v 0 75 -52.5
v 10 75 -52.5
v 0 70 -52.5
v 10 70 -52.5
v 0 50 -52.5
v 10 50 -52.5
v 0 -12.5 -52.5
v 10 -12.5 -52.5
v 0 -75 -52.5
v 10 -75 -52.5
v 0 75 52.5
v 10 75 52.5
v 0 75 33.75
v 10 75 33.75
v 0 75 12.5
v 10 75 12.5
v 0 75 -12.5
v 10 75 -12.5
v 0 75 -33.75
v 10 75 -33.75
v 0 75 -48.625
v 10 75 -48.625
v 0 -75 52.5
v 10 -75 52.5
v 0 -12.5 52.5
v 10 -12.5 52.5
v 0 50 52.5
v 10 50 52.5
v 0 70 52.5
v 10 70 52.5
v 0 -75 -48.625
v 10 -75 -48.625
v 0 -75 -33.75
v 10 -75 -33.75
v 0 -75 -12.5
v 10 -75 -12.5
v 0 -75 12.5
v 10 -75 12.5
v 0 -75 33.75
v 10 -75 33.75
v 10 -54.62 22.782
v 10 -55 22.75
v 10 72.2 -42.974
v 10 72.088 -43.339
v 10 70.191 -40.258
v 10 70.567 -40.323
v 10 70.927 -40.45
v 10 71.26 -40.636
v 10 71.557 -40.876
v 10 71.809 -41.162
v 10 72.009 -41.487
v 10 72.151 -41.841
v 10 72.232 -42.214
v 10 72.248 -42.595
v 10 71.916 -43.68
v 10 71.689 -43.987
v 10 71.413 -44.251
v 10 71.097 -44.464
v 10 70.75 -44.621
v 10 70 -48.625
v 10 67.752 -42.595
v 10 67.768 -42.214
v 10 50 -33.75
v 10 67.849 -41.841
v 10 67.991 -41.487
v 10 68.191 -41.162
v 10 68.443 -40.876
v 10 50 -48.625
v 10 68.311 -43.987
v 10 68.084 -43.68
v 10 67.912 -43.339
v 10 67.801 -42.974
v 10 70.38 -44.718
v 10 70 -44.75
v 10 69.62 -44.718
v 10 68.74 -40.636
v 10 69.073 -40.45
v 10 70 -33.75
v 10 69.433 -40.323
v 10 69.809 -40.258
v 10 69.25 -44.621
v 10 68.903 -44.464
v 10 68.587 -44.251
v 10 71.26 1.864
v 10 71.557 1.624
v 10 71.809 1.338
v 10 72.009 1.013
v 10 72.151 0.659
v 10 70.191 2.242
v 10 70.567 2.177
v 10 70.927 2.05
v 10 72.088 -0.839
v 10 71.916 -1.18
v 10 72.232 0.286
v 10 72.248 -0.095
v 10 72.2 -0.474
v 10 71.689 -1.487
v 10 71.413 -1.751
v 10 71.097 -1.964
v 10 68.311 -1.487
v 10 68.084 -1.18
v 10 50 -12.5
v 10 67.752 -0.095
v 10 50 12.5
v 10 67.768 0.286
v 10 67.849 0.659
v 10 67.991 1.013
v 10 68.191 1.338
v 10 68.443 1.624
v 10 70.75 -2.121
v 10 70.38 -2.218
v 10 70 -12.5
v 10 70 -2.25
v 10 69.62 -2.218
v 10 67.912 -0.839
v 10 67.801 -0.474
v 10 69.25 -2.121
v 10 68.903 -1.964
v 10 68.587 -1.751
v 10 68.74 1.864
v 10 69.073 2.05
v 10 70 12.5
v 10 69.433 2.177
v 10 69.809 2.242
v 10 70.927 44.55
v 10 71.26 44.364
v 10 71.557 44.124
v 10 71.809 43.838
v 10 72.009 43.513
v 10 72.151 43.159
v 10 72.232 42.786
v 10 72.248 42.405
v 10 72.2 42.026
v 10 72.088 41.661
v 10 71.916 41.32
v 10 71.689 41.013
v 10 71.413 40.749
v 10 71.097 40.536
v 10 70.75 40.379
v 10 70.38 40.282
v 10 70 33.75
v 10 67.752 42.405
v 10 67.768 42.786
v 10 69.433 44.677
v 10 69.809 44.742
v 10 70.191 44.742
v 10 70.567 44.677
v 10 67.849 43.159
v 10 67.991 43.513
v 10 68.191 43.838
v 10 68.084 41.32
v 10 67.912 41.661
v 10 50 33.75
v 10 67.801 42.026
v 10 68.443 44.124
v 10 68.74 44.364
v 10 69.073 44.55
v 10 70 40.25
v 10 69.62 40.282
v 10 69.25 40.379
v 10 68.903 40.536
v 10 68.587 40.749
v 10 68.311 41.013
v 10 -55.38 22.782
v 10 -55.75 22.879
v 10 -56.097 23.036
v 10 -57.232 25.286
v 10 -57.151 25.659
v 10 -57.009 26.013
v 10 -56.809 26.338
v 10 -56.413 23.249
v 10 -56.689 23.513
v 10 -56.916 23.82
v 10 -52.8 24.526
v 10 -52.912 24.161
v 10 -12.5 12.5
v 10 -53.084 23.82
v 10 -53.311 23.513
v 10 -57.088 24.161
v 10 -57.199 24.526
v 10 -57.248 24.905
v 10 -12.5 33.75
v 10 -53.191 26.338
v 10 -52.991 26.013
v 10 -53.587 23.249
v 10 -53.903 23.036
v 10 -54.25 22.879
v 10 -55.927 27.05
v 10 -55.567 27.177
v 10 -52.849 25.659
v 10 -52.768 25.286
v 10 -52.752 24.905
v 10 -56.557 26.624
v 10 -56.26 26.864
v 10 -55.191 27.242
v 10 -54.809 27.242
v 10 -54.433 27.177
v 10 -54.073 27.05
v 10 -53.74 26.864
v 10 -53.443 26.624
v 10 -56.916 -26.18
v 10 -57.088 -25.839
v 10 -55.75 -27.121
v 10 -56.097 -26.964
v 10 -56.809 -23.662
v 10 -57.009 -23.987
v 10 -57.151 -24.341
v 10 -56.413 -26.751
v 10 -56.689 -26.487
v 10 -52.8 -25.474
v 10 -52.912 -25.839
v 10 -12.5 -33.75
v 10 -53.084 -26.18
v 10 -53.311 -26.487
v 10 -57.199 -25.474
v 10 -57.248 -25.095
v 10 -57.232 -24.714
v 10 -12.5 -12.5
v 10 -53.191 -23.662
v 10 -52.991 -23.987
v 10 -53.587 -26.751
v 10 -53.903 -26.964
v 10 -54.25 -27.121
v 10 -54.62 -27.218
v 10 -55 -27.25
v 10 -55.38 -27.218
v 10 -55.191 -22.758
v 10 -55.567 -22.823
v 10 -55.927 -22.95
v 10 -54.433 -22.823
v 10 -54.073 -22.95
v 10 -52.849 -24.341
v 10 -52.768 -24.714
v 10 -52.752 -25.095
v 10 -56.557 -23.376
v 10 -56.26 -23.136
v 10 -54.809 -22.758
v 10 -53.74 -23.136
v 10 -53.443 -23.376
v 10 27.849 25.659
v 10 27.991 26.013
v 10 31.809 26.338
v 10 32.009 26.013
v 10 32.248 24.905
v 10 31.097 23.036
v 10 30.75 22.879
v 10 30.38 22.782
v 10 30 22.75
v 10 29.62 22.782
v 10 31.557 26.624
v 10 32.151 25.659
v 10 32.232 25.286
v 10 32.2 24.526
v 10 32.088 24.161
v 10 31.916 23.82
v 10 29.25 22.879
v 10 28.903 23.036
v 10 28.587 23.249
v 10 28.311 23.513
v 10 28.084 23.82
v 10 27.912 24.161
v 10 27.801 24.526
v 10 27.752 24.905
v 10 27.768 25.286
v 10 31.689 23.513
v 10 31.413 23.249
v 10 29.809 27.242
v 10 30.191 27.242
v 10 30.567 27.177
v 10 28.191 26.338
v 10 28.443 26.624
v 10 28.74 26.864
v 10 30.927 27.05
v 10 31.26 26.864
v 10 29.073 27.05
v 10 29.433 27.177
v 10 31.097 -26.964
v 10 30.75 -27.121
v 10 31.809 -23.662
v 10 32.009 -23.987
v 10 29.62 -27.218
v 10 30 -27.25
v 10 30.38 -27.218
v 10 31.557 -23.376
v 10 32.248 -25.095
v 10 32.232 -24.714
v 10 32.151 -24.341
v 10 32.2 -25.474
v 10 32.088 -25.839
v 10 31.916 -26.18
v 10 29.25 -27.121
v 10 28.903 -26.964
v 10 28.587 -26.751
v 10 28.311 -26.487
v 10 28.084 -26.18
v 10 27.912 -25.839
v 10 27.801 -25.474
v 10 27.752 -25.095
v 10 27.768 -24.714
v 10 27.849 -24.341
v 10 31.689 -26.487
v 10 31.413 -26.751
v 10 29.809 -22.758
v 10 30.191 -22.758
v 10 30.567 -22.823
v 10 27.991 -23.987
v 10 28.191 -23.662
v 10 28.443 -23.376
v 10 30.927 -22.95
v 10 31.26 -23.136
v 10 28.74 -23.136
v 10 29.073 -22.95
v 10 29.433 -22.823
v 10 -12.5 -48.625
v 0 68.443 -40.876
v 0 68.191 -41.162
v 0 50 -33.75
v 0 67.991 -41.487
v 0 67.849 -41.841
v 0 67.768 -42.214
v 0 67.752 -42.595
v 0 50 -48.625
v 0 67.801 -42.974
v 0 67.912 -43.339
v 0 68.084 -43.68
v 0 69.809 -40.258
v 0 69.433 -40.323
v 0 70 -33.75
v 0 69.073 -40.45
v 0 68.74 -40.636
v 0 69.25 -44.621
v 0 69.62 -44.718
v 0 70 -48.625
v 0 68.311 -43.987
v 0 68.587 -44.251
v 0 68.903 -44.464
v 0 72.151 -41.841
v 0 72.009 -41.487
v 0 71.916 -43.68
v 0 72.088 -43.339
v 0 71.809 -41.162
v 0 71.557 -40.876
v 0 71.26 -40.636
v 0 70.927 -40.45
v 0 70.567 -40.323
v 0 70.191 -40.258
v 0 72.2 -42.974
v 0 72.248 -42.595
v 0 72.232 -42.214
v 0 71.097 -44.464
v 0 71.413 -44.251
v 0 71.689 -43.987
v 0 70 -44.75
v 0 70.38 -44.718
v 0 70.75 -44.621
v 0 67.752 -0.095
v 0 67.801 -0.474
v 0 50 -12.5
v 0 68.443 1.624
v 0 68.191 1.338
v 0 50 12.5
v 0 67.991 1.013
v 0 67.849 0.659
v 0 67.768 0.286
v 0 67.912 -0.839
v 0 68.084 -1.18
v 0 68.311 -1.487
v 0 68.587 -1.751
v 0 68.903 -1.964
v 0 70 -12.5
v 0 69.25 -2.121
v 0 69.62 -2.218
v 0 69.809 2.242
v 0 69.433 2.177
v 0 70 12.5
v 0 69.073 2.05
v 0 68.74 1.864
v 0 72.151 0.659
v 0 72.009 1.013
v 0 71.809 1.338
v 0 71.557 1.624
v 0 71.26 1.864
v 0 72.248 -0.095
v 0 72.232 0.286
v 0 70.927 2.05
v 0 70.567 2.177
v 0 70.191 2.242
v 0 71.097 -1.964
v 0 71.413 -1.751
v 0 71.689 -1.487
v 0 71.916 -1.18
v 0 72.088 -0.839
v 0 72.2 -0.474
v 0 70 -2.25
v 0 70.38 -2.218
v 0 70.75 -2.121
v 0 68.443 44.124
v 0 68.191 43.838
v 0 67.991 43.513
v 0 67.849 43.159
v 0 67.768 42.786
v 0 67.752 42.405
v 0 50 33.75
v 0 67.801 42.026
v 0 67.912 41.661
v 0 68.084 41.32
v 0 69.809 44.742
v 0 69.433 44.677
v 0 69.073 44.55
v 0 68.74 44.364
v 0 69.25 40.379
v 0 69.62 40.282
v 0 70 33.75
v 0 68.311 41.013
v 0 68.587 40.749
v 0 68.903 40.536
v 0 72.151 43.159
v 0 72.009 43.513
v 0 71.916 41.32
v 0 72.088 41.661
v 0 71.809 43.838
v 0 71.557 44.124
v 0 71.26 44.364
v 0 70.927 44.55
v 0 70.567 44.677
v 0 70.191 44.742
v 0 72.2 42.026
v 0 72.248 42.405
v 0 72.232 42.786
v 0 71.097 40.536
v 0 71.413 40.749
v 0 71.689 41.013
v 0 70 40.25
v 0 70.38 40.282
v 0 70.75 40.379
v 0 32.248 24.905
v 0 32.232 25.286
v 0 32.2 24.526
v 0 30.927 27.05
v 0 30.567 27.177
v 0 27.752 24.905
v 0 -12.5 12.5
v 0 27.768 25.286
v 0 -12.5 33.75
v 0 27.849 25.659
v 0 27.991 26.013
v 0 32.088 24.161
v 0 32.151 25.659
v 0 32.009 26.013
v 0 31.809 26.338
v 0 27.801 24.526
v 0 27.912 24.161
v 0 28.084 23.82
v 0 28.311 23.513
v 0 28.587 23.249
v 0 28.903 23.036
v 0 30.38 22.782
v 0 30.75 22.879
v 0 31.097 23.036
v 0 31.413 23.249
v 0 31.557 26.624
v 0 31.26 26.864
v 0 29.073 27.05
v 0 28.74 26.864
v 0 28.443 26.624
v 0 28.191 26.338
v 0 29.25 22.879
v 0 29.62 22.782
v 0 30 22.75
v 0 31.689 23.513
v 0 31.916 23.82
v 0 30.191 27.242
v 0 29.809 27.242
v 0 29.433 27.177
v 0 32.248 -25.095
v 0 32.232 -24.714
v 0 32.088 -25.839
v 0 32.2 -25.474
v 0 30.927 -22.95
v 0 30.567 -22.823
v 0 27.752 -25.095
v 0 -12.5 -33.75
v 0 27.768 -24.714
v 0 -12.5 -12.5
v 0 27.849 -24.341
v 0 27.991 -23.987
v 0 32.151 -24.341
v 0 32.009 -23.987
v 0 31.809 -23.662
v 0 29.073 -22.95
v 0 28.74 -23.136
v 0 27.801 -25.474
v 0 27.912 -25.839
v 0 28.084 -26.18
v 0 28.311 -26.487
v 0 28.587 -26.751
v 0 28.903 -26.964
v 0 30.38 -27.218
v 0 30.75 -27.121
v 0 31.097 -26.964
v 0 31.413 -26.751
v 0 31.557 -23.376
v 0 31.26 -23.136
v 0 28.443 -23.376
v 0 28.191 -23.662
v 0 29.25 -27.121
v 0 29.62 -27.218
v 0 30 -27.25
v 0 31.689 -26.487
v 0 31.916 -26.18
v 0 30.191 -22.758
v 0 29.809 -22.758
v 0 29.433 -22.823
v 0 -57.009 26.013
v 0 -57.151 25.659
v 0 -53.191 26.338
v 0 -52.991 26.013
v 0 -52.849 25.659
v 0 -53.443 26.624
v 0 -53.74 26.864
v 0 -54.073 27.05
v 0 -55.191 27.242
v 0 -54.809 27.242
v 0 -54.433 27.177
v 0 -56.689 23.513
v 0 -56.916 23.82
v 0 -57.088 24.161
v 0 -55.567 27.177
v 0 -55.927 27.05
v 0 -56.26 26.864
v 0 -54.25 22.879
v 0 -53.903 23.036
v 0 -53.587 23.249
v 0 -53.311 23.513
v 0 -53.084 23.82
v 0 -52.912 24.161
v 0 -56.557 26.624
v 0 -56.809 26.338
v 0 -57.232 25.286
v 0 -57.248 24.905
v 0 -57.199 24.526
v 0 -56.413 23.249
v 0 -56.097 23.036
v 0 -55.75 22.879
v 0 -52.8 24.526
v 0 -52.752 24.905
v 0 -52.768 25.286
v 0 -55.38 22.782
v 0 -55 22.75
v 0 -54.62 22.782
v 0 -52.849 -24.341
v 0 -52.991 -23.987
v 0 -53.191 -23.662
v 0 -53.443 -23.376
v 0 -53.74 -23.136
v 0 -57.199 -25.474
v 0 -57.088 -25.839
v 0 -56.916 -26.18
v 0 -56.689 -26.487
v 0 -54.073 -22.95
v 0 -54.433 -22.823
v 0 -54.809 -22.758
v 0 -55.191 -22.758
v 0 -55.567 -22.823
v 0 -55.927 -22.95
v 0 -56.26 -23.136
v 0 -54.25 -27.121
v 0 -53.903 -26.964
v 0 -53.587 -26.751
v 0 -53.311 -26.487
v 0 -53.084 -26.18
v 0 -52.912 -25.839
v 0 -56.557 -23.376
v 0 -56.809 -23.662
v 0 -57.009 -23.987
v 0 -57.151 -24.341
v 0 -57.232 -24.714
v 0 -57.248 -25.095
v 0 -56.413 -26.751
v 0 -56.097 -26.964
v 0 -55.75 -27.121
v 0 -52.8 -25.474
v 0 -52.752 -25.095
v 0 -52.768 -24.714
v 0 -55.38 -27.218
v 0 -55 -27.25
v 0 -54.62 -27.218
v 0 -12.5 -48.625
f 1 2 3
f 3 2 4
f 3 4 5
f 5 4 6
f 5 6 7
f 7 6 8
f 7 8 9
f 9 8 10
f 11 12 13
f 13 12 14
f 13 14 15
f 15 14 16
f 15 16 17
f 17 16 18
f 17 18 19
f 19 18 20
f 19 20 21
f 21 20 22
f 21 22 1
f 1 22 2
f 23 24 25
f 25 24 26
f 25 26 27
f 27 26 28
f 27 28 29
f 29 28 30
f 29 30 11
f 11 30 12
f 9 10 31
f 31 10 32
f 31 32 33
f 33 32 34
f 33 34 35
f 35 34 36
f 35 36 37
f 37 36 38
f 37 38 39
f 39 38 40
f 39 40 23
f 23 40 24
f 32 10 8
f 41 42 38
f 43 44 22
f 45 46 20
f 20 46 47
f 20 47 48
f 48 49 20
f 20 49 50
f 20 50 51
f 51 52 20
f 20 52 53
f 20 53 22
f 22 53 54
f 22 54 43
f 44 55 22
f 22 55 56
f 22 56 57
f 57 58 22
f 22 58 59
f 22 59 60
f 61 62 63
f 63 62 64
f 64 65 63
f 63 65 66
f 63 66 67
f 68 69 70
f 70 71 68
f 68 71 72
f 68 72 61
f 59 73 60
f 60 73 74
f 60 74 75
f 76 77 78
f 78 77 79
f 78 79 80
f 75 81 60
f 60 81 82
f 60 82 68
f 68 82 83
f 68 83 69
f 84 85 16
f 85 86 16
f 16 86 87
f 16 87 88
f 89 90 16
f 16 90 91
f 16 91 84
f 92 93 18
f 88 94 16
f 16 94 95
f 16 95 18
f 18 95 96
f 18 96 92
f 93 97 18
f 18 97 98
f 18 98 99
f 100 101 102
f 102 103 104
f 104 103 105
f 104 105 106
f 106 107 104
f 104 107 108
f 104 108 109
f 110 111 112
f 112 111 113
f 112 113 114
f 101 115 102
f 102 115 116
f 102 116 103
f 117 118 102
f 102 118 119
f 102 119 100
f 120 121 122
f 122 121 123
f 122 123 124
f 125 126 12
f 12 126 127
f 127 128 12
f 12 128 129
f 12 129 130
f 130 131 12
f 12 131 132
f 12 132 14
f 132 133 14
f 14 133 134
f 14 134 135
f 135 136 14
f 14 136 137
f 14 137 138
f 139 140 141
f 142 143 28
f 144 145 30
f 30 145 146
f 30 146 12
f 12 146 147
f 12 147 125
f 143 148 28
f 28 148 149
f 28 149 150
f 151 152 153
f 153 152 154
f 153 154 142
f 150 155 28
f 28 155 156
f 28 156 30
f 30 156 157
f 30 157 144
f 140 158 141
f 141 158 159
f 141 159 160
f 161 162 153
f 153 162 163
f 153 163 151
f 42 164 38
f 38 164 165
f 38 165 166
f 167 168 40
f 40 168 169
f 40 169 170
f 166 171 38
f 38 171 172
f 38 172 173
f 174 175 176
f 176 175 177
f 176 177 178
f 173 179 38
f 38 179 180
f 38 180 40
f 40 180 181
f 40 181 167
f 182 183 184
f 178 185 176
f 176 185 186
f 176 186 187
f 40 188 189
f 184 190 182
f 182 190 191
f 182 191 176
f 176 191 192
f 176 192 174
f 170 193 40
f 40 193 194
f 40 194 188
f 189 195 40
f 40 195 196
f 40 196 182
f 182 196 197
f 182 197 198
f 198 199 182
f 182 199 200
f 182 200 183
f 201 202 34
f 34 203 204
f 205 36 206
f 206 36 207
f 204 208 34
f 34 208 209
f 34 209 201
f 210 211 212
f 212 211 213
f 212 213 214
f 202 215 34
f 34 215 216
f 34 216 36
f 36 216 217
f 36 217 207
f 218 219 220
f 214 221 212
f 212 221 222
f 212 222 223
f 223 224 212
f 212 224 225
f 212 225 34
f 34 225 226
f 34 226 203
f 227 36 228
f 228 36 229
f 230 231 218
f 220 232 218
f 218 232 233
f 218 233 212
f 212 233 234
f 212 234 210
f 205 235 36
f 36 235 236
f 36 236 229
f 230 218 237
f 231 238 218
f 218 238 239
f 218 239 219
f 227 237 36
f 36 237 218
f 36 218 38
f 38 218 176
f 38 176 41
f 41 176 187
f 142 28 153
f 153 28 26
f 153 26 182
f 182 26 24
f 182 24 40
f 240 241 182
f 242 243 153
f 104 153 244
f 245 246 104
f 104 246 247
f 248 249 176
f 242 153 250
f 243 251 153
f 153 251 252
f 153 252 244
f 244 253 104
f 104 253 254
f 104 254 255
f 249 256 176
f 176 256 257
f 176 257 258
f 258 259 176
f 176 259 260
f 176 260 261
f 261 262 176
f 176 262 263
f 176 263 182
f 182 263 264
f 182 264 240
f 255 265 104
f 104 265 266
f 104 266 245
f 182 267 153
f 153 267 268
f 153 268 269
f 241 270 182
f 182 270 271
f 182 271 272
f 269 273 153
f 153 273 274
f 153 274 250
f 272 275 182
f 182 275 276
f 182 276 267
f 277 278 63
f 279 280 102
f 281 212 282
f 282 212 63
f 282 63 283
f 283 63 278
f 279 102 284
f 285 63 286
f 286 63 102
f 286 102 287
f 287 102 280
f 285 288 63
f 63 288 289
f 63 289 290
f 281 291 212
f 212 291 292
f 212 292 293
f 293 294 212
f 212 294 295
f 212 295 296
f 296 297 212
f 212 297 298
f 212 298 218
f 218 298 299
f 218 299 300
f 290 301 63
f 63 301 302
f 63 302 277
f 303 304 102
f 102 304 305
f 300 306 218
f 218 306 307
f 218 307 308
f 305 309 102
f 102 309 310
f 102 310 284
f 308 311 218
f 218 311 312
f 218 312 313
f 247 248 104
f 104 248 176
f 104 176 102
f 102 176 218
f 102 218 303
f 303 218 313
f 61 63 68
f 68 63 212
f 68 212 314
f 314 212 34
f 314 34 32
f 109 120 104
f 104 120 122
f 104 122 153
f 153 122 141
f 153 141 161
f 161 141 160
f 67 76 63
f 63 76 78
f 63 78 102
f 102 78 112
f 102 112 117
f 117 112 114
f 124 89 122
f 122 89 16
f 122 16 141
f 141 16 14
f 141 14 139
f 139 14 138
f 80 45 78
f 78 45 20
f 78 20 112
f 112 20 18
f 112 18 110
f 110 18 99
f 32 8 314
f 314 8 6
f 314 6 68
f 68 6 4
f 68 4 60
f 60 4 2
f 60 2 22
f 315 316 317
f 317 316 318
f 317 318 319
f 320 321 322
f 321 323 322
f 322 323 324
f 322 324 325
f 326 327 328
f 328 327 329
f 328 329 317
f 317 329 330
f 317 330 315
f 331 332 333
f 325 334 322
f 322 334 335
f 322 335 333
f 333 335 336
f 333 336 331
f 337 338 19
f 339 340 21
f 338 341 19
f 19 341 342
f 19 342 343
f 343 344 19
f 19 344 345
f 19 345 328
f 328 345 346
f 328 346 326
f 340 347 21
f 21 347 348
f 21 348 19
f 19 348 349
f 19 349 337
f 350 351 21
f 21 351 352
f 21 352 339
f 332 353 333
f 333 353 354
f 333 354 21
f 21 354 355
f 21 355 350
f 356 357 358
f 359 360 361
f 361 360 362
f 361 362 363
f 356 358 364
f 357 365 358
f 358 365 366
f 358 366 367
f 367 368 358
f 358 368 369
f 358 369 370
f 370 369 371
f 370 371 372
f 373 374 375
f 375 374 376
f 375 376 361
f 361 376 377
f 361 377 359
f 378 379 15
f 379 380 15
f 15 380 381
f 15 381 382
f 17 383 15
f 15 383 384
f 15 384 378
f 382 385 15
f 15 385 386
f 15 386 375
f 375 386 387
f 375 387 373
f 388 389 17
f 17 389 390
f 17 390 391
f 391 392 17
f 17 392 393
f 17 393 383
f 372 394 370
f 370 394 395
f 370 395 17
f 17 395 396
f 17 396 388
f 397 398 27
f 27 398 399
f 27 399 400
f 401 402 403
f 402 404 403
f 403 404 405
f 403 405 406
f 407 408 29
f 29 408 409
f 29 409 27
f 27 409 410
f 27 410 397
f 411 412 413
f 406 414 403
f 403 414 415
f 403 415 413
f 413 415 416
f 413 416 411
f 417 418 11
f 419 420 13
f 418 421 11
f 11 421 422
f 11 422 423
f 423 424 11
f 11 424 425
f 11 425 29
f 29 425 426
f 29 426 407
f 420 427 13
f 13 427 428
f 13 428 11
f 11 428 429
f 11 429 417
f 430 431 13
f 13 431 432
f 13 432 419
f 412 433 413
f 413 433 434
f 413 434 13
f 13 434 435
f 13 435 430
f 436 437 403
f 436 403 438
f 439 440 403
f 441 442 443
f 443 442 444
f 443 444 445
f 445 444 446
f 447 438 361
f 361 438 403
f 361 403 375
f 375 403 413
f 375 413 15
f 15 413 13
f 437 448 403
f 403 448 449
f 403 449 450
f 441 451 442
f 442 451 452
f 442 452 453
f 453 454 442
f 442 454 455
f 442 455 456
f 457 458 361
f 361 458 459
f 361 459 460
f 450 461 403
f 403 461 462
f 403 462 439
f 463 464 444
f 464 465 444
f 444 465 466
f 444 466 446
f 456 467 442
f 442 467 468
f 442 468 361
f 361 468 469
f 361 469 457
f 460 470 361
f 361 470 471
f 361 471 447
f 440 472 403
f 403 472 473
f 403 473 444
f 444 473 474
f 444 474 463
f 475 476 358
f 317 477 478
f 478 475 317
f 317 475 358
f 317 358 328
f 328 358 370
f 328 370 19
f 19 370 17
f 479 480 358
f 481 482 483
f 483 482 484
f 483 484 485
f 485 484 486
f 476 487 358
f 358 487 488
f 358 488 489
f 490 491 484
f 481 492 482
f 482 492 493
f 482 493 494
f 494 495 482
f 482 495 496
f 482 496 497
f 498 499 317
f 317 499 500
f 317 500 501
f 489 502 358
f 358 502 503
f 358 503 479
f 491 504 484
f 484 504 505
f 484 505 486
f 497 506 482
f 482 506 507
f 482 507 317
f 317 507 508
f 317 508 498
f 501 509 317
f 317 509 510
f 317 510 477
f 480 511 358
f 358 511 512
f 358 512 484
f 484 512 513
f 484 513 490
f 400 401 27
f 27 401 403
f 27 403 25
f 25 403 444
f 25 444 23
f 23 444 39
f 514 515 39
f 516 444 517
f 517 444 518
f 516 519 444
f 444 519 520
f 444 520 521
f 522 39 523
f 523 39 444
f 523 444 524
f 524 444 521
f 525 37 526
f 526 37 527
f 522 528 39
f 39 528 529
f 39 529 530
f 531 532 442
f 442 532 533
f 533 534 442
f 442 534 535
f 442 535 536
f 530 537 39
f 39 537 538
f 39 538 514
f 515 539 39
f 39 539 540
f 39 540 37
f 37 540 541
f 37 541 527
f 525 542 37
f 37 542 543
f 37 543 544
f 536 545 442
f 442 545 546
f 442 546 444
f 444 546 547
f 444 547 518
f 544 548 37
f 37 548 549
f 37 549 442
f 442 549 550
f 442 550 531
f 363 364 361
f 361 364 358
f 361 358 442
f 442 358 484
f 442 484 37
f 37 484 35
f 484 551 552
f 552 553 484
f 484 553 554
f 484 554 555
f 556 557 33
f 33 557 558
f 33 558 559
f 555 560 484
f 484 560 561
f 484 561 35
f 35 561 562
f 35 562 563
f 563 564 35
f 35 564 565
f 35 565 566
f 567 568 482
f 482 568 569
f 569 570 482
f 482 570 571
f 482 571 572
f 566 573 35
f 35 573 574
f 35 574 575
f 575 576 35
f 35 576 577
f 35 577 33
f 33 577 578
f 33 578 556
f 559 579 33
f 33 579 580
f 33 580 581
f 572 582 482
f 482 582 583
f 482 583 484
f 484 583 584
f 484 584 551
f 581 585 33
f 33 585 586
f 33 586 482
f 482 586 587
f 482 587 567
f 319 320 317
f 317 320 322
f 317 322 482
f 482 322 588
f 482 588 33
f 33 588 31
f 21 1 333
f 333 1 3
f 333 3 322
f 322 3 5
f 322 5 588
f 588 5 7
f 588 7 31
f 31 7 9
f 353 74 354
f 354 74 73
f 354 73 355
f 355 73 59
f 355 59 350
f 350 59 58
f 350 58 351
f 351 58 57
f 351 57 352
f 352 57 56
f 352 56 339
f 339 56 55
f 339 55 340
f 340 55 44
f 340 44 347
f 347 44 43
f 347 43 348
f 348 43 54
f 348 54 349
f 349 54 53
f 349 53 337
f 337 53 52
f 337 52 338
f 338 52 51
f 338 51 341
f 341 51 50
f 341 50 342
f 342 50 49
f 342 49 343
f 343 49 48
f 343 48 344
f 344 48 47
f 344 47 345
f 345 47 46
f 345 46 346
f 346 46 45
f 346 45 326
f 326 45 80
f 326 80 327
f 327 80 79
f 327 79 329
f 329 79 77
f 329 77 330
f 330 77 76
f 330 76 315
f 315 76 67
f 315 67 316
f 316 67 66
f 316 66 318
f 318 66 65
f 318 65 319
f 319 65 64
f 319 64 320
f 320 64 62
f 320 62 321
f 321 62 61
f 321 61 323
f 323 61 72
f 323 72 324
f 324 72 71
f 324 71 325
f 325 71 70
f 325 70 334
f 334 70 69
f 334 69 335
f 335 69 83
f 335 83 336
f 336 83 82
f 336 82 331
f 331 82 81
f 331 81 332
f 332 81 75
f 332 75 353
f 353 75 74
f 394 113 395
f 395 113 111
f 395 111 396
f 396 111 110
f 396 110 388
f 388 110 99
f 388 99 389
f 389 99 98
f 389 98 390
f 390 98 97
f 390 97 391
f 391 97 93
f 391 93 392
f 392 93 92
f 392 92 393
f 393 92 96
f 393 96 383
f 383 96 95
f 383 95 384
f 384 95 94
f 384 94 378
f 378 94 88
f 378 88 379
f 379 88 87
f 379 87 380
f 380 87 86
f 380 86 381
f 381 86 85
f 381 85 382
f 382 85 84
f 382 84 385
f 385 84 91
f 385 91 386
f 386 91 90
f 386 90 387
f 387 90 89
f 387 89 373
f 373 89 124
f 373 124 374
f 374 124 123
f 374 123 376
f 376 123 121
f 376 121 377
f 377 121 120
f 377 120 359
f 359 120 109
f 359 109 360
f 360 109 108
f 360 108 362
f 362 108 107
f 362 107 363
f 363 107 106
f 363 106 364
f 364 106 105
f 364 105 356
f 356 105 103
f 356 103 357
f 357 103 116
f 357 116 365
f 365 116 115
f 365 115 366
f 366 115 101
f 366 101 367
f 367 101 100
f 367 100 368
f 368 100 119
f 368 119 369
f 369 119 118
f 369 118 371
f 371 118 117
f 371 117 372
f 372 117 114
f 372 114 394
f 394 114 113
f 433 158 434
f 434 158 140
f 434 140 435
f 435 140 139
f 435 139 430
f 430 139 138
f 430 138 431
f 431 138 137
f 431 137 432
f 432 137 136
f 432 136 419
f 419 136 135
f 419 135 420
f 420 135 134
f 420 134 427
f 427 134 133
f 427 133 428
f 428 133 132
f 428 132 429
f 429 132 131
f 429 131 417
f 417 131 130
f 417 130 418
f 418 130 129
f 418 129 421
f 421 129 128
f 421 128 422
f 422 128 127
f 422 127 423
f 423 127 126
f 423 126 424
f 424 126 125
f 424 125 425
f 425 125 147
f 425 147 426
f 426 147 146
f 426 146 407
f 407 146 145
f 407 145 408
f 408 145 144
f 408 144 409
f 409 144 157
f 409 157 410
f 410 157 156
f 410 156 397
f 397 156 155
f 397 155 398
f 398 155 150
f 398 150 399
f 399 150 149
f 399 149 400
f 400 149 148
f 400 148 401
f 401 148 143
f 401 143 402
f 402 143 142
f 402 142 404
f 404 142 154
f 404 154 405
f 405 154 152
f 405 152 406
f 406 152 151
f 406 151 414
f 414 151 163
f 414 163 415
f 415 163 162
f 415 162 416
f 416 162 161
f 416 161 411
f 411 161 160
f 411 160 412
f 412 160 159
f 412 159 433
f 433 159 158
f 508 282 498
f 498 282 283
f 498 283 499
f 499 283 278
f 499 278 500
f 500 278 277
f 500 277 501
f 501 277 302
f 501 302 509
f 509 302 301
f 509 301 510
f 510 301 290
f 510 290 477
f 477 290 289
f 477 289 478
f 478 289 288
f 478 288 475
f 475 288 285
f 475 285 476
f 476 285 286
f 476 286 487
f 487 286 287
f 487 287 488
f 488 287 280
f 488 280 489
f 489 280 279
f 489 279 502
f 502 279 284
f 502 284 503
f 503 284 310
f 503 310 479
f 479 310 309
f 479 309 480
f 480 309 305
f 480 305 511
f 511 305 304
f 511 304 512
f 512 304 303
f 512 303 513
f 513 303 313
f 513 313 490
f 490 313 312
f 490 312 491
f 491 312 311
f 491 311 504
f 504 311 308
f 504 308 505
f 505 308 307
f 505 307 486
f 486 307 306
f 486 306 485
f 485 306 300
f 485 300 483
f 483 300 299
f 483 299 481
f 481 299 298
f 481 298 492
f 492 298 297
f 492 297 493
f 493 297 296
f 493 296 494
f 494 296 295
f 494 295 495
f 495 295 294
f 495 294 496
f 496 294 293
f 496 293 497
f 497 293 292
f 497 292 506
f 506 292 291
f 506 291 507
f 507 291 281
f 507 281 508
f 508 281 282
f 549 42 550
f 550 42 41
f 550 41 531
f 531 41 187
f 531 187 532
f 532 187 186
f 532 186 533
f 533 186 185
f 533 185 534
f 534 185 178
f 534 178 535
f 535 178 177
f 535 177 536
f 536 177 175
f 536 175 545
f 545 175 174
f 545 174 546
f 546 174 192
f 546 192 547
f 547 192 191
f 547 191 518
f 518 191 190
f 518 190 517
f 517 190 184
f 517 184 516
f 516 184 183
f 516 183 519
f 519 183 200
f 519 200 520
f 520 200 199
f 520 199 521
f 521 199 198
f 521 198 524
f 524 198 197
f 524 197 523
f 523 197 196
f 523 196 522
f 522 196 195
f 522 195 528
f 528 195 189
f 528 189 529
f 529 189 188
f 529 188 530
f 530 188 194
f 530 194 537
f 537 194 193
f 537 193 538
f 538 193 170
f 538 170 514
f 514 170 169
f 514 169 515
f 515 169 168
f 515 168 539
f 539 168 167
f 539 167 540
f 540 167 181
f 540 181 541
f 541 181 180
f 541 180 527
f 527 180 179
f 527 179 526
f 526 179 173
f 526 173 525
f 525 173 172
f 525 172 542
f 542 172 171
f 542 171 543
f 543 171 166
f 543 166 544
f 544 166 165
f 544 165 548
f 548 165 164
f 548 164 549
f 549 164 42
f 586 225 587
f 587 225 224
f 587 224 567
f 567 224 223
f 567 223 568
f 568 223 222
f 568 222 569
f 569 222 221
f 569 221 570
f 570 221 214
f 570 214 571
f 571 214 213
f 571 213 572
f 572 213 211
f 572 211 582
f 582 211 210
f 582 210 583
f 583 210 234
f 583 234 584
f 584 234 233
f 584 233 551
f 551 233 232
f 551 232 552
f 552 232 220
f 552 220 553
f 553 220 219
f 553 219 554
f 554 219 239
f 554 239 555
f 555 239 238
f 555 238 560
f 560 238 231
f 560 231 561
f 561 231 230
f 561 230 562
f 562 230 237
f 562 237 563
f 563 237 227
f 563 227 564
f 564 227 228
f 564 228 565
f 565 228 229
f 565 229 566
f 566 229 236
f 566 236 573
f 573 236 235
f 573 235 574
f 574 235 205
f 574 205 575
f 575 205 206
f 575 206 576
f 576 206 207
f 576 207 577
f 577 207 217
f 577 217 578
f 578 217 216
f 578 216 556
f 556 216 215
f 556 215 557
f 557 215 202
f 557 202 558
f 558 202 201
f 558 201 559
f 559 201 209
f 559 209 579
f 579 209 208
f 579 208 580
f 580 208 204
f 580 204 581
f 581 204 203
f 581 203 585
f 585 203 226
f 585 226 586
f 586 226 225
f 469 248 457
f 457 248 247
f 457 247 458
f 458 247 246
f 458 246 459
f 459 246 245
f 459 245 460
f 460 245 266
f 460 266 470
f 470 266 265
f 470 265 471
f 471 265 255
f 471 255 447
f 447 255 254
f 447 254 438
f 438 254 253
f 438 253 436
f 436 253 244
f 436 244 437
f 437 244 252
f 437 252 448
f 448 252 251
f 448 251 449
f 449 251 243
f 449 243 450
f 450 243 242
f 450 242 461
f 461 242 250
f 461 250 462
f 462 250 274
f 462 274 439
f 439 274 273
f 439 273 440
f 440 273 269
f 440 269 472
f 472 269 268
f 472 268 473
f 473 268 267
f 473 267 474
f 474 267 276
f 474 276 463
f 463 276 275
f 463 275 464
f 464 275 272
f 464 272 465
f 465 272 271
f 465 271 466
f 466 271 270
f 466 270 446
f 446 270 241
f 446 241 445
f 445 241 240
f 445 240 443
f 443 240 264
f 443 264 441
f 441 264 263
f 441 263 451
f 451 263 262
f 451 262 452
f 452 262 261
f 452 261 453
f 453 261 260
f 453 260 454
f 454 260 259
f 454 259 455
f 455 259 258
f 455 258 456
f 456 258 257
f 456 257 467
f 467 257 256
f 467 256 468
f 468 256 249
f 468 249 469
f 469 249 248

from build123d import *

# Parameters (mm, degrees)
CROQUIS1_W              = 105
CROQUIS1_H              = 150
SALIENTE_EXTRUIR1_DEPTH = 10
CROQUIS2_R              = 2.25
CORTAR_EXTRUIR1_DEPTH   = 93.093702282
CROQUIS3_R              = 2.25
CORTAR_EXTRUIR2_DEPTH   = 93.093702282


with BuildPart() as part:
    # Croquis1 → Saliente-Extruir1 (new body)
    with BuildSketch(Plane(origin=(0, 0, 0), x_dir=(0, 0, -1), z_dir=(1, 0, 0))):
        Rectangle(CROQUIS1_W, CROQUIS1_H)
    extrude(amount=SALIENTE_EXTRUIR1_DEPTH)

    # Croquis2 → Cortar-Extruir1 (cut, through all)
    with BuildSketch(Plane(origin=(10, 0, 0), x_dir=(0, 0, -1), z_dir=(1, 0, 0))):
        with Locations((-42.5, 70)):
            Circle(CROQUIS2_R)
        with Locations((0, 70)):
            Circle(CROQUIS2_R)
        with Locations((42.5, 70)):
            Circle(CROQUIS2_R)
    extrude(amount=-CORTAR_EXTRUIR1_DEPTH, mode=Mode.SUBTRACT)

    # Croquis3 → Cortar-Extruir2 (cut, through all)
    with BuildSketch(Plane(origin=(10, 0, 0), x_dir=(0, 0, -1), z_dir=(1, 0, 0))):
        with Locations((25, 30)):
            Circle(CROQUIS3_R)
        with Locations((-25, 30)):
            Circle(CROQUIS3_R)
        with Locations((25, -55)):
            Circle(CROQUIS3_R)
        with Locations((-25, -55)):
            Circle(CROQUIS3_R)
    extrude(amount=-CORTAR_EXTRUIR2_DEPTH, mode=Mode.SUBTRACT)


solid = part.part
